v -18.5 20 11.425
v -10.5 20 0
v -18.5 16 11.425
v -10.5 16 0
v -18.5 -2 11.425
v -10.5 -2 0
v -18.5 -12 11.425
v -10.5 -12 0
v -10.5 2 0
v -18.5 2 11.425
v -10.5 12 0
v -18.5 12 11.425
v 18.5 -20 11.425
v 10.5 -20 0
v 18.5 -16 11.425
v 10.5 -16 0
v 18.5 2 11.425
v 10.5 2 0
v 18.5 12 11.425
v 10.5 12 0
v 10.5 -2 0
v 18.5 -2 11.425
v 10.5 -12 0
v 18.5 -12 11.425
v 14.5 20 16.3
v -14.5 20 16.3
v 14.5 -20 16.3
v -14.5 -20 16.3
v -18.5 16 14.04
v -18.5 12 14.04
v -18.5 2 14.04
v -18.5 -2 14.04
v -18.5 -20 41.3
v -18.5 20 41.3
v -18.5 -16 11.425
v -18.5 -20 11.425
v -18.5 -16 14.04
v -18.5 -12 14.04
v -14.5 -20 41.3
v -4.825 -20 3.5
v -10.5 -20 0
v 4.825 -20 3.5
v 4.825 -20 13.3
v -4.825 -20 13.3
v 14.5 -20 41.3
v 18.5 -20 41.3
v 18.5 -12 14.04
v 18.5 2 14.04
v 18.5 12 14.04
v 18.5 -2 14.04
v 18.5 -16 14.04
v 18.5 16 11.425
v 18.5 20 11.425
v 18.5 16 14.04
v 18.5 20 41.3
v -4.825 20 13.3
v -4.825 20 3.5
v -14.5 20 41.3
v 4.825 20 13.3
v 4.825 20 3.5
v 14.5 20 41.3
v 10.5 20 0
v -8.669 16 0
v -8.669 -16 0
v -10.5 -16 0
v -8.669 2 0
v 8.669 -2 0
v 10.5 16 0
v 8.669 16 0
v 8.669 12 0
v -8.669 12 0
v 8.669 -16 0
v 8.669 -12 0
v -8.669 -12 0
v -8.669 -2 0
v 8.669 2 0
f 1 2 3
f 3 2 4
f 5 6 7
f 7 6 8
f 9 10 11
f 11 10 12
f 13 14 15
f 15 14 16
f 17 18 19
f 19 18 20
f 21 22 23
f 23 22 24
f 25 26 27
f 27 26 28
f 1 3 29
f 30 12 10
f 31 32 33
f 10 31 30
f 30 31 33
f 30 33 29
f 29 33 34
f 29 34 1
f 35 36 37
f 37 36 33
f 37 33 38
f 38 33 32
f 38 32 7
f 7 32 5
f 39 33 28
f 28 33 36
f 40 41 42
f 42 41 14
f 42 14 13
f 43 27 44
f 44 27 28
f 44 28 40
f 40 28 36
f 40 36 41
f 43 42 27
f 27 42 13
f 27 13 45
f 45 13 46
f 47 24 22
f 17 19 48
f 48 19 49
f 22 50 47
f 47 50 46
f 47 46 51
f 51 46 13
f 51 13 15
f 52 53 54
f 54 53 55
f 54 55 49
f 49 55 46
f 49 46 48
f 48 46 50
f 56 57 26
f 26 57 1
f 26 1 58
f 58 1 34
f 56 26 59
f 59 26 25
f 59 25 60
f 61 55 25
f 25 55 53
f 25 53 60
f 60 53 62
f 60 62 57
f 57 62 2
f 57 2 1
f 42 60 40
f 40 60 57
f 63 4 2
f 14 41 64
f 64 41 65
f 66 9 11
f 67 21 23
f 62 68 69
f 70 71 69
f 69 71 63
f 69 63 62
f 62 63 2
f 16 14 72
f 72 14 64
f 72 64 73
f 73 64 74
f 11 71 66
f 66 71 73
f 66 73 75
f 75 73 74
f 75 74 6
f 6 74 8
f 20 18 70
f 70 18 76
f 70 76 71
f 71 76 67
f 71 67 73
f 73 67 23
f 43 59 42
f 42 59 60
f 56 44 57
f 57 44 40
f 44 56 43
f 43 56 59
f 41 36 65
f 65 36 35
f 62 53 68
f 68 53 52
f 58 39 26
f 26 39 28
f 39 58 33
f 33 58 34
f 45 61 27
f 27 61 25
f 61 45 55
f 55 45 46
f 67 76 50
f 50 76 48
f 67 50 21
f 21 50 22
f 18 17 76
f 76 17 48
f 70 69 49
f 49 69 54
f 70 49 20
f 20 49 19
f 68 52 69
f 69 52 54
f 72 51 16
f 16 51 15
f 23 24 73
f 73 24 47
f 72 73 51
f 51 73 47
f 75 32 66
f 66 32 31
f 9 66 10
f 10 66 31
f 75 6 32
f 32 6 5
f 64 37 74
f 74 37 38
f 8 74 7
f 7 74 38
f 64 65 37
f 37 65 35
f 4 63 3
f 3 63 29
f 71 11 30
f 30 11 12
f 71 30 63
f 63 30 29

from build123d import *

# Parameters (mm, degrees)
SKETCH2_W              = 4
SKETCH2_H              = 40
SKETCH2_W_2            = 9.675
SKETCH2_W_3            = 9.65
BOTTOMBASE_DEPTH       = 3.5
EXTRUDE_START          = 3.5
SKETCH2_3_W            = 9.675
SKETCH2_3_H            = 40
SKETCH2_3_W_2          = 4
EXTRUDE_U_DEPTH        = 9.8
TOPFORU_START          = 13.3
SKETCH2_5_W            = 37
SKETCH2_5_H            = 40
TOPFORU_DEPTH          = 3
ANGLEDBOTTOM_SIZE      = 8
ANGLEDBOTTOM_SIZE2     = 11.425184054
SIDESTOHOLDMOTOR_START = 16.3
SKETCH2_4_W            = 4
SKETCH2_4_H            = 40
SIDESTOHOLDMOTOR_DEPTH = 25
SKETCH3_W              = 33.690968993
SKETCH3_H              = 4
ZIPTIEHOLE_DEPTH       = 1.5
SKETCH4_W              = 50.344511624
SKETCH4_H              = 4
ZIPTIEHOLE2_DEPTH      = 1.5


with BuildPart() as part:
    # Sketch2 → BottomBase (new body)
    with BuildSketch(Plane.XY):
        with Locations((-16.5, 0)):
            Rectangle(SKETCH2_W, SKETCH2_H)
        with Locations((-9.6625, 0)):
            Rectangle(SKETCH2_W_2, SKETCH2_H)
        Rectangle(SKETCH2_W_3, SKETCH2_H)
        with Locations((9.6625, 0)):
            Rectangle(SKETCH2_W_2, SKETCH2_H)
        with Locations((16.5, 0)):
            Rectangle(SKETCH2_W, SKETCH2_H)
    extrude(amount=BOTTOMBASE_DEPTH)

    # Sketch2<3> → U (add)
    with BuildSketch(Plane.XY.offset(EXTRUDE_START)):
        with Locations((9.6625, 0)):
            Rectangle(SKETCH2_3_W, SKETCH2_3_H)
        with Locations((16.5, 0)):
            Rectangle(SKETCH2_3_W_2, SKETCH2_3_H)
        with Locations((-9.6625, 0)):
            Rectangle(SKETCH2_3_W, SKETCH2_3_H)
        with Locations((-16.5, 0)):
            Rectangle(SKETCH2_3_W_2, SKETCH2_3_H)
    extrude(amount=EXTRUDE_U_DEPTH)

    # Sketch2<5> → topForU (add)
    with BuildSketch(Plane.XY.offset(TOPFORU_START)):
        Rectangle(SKETCH2_5_W, SKETCH2_5_H)
    extrude(amount=TOPFORU_DEPTH)

    # angledBottom
    angledbottom_edges = [part.edges().sort_by_distance(p)[0] for p in [
        (18.5, 0, 0),
        (-18.5, 0, 0),
    ]]
    angledbottom_side = [part.faces().sort_by_distance(p)[0] for p in [
        (0, 0, 0),
    ]]
    chamfer(angledbottom_edges, length=ANGLEDBOTTOM_SIZE, length2=ANGLEDBOTTOM_SIZE2, reference=angledbottom_side[0])

    # Sketch2<4> → sidesToHoldMotor (add)
    with BuildSketch(Plane.XY.offset(SIDESTOHOLDMOTOR_START)):
        with Locations((-16.5, 0)):
            Rectangle(SKETCH2_4_W, SKETCH2_4_H)
        with Locations((16.5, 0)):
            Rectangle(SKETCH2_4_W, SKETCH2_4_H)
    extrude(amount=SIDESTOHOLDMOTOR_DEPTH)

    # Sketch3 → zipTieHole (cut)
    with BuildSketch(Plane(origin=(7.045605752, 0, -4.933386259), x_dir=(-0.5735764363510474, 0, -0.819152044288991), z_dir=(0.819152044288991, 0, -0.5735764363510474))):
        with Locations((-9.106215993, 0)):
            Rectangle(SKETCH3_W, SKETCH3_H)
        with Locations((-9.106215993, 14)):
            Rectangle(SKETCH3_W, SKETCH3_H)
        with Locations((-9.106215993, -14)):
            Rectangle(SKETCH3_W, SKETCH3_H)
    extrude(amount=-ZIPTIEHOLE_DEPTH, mode=Mode.SUBTRACT)

    # Sketch4 → zipTieHole2 (cut)
    with BuildSketch(Plane(origin=(-7.045605752, 0, -4.933386259), x_dir=(-0.5735764363510474, 0, 0.819152044288991), z_dir=(-0.819152044288991, 0, -0.5735764363510474))):
        Rectangle(SKETCH4_W, SKETCH4_H)
        with Locations((0, 14)):
            Rectangle(SKETCH4_W, SKETCH4_H)
        with Locations((0, -14)):
            Rectangle(SKETCH4_W, SKETCH4_H)
    extrude(amount=-ZIPTIEHOLE2_DEPTH, mode=Mode.SUBTRACT)


solid = part.part
